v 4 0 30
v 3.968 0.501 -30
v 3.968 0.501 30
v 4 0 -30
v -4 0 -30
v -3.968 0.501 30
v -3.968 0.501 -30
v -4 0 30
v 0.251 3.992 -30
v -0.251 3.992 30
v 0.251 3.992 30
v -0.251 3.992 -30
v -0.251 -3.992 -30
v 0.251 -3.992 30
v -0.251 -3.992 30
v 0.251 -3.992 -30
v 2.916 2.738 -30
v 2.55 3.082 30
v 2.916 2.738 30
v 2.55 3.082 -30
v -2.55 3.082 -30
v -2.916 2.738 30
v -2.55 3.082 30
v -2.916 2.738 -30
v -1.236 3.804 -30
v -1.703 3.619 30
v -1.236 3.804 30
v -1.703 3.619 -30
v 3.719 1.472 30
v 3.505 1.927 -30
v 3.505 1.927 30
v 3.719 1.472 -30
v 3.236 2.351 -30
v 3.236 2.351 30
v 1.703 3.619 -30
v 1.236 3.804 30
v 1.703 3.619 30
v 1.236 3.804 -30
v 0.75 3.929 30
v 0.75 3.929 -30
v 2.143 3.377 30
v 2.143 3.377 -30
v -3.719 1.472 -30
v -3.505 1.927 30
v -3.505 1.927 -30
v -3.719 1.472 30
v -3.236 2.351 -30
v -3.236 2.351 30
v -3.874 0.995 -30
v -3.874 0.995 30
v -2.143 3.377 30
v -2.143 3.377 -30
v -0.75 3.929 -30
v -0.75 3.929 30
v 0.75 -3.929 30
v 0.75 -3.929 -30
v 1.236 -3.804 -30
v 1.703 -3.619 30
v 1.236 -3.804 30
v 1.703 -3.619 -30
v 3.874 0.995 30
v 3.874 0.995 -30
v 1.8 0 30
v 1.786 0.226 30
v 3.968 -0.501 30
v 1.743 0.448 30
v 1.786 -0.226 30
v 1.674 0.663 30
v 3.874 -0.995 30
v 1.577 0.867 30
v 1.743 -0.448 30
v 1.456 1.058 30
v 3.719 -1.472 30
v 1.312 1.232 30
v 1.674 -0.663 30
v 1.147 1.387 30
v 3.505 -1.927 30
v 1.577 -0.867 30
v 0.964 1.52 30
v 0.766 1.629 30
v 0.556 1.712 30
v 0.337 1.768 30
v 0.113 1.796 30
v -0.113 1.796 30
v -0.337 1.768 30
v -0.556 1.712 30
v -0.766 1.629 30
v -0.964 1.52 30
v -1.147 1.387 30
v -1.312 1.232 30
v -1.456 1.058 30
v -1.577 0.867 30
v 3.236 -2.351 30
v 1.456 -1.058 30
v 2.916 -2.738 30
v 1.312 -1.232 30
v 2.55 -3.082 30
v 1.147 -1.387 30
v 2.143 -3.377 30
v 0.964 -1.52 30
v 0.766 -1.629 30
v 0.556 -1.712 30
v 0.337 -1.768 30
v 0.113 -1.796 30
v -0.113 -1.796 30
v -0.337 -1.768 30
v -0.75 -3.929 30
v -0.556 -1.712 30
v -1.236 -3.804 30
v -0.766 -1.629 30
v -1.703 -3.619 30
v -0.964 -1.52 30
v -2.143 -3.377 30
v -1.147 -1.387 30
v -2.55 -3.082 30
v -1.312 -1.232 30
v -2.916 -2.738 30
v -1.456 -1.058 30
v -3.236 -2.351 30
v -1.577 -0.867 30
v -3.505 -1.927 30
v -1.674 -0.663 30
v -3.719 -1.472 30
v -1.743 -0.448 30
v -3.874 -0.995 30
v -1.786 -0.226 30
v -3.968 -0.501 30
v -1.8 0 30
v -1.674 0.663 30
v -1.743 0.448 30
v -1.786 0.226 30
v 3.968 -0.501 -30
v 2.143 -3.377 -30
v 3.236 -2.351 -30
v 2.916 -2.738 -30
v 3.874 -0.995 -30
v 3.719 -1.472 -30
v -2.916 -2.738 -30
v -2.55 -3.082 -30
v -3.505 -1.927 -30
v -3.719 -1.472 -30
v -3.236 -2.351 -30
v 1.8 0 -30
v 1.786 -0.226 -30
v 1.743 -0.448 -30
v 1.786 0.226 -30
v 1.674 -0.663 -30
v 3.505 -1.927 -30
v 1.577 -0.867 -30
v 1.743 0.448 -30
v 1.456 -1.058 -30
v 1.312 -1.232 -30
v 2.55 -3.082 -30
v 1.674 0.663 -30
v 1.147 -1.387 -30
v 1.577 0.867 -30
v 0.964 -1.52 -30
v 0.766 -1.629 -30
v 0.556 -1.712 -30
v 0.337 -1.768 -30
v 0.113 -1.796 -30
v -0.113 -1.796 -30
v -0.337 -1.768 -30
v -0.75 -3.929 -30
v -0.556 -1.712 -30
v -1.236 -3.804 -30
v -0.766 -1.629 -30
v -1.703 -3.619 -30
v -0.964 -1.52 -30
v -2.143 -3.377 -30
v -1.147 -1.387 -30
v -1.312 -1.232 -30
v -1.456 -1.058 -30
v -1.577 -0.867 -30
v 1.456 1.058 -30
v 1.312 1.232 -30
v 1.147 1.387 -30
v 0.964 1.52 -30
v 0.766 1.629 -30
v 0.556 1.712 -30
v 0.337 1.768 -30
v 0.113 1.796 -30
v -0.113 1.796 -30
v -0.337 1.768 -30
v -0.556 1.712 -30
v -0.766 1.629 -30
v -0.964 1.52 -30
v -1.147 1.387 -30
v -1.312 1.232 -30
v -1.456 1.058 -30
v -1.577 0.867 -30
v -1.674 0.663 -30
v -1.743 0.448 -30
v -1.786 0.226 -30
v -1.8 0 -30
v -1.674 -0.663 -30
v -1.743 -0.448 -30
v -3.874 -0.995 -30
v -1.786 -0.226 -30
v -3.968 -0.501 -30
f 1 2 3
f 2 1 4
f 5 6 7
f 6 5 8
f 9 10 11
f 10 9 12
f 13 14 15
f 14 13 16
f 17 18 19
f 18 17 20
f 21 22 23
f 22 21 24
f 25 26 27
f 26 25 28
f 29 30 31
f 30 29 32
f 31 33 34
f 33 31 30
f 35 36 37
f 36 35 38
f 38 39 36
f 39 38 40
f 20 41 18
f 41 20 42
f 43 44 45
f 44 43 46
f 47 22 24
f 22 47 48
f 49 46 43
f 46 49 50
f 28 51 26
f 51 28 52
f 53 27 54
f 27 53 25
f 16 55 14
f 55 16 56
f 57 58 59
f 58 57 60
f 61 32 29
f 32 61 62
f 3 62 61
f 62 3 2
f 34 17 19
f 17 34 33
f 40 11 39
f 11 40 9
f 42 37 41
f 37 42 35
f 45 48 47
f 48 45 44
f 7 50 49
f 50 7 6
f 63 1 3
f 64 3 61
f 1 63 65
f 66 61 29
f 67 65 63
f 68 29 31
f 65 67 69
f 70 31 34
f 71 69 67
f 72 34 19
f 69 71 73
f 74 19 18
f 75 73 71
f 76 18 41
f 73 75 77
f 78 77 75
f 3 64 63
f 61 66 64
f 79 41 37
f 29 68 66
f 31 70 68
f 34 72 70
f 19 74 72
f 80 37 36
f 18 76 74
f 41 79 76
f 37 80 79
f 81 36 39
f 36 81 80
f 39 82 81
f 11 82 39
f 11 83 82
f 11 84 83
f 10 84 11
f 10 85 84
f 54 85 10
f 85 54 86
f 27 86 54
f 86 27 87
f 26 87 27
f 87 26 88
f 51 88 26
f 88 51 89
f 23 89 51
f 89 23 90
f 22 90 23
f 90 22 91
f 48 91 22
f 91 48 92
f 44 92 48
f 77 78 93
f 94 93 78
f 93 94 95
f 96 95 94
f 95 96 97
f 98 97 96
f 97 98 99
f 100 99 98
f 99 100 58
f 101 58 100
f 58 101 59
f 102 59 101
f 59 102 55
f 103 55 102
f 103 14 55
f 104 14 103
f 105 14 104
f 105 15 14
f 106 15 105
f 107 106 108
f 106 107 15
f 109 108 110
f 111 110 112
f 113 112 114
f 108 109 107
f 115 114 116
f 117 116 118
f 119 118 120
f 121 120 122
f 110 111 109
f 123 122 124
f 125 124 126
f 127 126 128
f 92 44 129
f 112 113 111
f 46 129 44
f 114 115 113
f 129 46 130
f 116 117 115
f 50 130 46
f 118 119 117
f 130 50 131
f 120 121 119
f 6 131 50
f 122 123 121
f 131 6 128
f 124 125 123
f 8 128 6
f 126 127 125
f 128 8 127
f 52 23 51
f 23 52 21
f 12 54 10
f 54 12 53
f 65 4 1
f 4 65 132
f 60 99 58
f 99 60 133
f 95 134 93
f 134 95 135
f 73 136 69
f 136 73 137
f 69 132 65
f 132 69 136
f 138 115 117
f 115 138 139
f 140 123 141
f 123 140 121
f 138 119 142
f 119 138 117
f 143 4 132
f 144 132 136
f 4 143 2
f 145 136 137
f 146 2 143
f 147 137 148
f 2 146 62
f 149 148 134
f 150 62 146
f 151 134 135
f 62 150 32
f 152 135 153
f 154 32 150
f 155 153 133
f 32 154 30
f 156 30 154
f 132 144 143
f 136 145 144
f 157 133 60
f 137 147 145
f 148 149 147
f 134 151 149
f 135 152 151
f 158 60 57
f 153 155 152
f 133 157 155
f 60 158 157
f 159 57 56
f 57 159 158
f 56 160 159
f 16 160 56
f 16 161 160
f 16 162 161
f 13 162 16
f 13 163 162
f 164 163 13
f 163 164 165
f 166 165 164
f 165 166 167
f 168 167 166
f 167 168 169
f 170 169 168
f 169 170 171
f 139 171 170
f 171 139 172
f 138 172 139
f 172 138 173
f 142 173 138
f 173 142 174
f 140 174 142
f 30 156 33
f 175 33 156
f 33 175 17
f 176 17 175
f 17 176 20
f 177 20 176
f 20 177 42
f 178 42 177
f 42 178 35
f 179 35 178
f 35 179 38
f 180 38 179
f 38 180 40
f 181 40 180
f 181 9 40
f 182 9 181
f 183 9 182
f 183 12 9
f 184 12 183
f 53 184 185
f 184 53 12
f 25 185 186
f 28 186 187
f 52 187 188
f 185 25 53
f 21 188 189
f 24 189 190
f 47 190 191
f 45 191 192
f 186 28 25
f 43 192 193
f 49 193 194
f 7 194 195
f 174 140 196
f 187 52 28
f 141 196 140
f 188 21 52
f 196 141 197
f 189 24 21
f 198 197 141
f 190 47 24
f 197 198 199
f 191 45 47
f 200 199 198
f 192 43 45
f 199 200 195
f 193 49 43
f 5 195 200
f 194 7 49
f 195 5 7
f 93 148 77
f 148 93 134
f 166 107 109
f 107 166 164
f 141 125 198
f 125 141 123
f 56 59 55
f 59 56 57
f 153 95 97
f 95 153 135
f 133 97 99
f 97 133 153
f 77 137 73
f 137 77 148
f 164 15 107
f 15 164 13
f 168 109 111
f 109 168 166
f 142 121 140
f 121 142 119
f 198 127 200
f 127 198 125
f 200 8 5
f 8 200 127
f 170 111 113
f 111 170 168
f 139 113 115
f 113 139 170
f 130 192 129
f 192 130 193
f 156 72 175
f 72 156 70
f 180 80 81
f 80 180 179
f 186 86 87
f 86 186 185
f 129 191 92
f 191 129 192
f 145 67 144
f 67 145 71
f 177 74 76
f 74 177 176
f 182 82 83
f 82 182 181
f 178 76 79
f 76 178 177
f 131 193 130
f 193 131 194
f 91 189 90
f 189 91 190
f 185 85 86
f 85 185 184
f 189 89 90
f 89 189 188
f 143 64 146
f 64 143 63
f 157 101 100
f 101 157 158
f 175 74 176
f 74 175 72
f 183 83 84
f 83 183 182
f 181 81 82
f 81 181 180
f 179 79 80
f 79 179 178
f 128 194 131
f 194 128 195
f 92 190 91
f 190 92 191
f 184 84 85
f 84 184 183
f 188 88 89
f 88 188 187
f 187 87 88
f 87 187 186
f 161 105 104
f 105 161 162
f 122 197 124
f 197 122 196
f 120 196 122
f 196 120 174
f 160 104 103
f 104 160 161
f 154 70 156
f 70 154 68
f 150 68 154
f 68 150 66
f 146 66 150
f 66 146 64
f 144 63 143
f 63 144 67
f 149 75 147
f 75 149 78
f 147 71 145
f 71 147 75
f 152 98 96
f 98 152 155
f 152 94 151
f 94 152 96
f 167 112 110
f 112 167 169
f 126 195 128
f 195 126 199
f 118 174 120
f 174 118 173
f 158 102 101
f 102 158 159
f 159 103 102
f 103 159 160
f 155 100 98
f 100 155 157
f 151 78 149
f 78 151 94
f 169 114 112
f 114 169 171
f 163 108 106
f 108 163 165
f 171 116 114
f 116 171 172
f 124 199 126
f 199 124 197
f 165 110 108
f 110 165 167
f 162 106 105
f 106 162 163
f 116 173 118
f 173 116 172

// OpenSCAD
$fn = 50;


difference() {
	union() {
		translate(v = [0, 0, -30.0000000000]) {
			cylinder(h = 60, r = 4.0000000000);
		}
	}
	union() {
		translate(v = [0, 0, -100.0000000000]) {
			cylinder(h = 200, r = 1.8000000000);
		}
	}
}
